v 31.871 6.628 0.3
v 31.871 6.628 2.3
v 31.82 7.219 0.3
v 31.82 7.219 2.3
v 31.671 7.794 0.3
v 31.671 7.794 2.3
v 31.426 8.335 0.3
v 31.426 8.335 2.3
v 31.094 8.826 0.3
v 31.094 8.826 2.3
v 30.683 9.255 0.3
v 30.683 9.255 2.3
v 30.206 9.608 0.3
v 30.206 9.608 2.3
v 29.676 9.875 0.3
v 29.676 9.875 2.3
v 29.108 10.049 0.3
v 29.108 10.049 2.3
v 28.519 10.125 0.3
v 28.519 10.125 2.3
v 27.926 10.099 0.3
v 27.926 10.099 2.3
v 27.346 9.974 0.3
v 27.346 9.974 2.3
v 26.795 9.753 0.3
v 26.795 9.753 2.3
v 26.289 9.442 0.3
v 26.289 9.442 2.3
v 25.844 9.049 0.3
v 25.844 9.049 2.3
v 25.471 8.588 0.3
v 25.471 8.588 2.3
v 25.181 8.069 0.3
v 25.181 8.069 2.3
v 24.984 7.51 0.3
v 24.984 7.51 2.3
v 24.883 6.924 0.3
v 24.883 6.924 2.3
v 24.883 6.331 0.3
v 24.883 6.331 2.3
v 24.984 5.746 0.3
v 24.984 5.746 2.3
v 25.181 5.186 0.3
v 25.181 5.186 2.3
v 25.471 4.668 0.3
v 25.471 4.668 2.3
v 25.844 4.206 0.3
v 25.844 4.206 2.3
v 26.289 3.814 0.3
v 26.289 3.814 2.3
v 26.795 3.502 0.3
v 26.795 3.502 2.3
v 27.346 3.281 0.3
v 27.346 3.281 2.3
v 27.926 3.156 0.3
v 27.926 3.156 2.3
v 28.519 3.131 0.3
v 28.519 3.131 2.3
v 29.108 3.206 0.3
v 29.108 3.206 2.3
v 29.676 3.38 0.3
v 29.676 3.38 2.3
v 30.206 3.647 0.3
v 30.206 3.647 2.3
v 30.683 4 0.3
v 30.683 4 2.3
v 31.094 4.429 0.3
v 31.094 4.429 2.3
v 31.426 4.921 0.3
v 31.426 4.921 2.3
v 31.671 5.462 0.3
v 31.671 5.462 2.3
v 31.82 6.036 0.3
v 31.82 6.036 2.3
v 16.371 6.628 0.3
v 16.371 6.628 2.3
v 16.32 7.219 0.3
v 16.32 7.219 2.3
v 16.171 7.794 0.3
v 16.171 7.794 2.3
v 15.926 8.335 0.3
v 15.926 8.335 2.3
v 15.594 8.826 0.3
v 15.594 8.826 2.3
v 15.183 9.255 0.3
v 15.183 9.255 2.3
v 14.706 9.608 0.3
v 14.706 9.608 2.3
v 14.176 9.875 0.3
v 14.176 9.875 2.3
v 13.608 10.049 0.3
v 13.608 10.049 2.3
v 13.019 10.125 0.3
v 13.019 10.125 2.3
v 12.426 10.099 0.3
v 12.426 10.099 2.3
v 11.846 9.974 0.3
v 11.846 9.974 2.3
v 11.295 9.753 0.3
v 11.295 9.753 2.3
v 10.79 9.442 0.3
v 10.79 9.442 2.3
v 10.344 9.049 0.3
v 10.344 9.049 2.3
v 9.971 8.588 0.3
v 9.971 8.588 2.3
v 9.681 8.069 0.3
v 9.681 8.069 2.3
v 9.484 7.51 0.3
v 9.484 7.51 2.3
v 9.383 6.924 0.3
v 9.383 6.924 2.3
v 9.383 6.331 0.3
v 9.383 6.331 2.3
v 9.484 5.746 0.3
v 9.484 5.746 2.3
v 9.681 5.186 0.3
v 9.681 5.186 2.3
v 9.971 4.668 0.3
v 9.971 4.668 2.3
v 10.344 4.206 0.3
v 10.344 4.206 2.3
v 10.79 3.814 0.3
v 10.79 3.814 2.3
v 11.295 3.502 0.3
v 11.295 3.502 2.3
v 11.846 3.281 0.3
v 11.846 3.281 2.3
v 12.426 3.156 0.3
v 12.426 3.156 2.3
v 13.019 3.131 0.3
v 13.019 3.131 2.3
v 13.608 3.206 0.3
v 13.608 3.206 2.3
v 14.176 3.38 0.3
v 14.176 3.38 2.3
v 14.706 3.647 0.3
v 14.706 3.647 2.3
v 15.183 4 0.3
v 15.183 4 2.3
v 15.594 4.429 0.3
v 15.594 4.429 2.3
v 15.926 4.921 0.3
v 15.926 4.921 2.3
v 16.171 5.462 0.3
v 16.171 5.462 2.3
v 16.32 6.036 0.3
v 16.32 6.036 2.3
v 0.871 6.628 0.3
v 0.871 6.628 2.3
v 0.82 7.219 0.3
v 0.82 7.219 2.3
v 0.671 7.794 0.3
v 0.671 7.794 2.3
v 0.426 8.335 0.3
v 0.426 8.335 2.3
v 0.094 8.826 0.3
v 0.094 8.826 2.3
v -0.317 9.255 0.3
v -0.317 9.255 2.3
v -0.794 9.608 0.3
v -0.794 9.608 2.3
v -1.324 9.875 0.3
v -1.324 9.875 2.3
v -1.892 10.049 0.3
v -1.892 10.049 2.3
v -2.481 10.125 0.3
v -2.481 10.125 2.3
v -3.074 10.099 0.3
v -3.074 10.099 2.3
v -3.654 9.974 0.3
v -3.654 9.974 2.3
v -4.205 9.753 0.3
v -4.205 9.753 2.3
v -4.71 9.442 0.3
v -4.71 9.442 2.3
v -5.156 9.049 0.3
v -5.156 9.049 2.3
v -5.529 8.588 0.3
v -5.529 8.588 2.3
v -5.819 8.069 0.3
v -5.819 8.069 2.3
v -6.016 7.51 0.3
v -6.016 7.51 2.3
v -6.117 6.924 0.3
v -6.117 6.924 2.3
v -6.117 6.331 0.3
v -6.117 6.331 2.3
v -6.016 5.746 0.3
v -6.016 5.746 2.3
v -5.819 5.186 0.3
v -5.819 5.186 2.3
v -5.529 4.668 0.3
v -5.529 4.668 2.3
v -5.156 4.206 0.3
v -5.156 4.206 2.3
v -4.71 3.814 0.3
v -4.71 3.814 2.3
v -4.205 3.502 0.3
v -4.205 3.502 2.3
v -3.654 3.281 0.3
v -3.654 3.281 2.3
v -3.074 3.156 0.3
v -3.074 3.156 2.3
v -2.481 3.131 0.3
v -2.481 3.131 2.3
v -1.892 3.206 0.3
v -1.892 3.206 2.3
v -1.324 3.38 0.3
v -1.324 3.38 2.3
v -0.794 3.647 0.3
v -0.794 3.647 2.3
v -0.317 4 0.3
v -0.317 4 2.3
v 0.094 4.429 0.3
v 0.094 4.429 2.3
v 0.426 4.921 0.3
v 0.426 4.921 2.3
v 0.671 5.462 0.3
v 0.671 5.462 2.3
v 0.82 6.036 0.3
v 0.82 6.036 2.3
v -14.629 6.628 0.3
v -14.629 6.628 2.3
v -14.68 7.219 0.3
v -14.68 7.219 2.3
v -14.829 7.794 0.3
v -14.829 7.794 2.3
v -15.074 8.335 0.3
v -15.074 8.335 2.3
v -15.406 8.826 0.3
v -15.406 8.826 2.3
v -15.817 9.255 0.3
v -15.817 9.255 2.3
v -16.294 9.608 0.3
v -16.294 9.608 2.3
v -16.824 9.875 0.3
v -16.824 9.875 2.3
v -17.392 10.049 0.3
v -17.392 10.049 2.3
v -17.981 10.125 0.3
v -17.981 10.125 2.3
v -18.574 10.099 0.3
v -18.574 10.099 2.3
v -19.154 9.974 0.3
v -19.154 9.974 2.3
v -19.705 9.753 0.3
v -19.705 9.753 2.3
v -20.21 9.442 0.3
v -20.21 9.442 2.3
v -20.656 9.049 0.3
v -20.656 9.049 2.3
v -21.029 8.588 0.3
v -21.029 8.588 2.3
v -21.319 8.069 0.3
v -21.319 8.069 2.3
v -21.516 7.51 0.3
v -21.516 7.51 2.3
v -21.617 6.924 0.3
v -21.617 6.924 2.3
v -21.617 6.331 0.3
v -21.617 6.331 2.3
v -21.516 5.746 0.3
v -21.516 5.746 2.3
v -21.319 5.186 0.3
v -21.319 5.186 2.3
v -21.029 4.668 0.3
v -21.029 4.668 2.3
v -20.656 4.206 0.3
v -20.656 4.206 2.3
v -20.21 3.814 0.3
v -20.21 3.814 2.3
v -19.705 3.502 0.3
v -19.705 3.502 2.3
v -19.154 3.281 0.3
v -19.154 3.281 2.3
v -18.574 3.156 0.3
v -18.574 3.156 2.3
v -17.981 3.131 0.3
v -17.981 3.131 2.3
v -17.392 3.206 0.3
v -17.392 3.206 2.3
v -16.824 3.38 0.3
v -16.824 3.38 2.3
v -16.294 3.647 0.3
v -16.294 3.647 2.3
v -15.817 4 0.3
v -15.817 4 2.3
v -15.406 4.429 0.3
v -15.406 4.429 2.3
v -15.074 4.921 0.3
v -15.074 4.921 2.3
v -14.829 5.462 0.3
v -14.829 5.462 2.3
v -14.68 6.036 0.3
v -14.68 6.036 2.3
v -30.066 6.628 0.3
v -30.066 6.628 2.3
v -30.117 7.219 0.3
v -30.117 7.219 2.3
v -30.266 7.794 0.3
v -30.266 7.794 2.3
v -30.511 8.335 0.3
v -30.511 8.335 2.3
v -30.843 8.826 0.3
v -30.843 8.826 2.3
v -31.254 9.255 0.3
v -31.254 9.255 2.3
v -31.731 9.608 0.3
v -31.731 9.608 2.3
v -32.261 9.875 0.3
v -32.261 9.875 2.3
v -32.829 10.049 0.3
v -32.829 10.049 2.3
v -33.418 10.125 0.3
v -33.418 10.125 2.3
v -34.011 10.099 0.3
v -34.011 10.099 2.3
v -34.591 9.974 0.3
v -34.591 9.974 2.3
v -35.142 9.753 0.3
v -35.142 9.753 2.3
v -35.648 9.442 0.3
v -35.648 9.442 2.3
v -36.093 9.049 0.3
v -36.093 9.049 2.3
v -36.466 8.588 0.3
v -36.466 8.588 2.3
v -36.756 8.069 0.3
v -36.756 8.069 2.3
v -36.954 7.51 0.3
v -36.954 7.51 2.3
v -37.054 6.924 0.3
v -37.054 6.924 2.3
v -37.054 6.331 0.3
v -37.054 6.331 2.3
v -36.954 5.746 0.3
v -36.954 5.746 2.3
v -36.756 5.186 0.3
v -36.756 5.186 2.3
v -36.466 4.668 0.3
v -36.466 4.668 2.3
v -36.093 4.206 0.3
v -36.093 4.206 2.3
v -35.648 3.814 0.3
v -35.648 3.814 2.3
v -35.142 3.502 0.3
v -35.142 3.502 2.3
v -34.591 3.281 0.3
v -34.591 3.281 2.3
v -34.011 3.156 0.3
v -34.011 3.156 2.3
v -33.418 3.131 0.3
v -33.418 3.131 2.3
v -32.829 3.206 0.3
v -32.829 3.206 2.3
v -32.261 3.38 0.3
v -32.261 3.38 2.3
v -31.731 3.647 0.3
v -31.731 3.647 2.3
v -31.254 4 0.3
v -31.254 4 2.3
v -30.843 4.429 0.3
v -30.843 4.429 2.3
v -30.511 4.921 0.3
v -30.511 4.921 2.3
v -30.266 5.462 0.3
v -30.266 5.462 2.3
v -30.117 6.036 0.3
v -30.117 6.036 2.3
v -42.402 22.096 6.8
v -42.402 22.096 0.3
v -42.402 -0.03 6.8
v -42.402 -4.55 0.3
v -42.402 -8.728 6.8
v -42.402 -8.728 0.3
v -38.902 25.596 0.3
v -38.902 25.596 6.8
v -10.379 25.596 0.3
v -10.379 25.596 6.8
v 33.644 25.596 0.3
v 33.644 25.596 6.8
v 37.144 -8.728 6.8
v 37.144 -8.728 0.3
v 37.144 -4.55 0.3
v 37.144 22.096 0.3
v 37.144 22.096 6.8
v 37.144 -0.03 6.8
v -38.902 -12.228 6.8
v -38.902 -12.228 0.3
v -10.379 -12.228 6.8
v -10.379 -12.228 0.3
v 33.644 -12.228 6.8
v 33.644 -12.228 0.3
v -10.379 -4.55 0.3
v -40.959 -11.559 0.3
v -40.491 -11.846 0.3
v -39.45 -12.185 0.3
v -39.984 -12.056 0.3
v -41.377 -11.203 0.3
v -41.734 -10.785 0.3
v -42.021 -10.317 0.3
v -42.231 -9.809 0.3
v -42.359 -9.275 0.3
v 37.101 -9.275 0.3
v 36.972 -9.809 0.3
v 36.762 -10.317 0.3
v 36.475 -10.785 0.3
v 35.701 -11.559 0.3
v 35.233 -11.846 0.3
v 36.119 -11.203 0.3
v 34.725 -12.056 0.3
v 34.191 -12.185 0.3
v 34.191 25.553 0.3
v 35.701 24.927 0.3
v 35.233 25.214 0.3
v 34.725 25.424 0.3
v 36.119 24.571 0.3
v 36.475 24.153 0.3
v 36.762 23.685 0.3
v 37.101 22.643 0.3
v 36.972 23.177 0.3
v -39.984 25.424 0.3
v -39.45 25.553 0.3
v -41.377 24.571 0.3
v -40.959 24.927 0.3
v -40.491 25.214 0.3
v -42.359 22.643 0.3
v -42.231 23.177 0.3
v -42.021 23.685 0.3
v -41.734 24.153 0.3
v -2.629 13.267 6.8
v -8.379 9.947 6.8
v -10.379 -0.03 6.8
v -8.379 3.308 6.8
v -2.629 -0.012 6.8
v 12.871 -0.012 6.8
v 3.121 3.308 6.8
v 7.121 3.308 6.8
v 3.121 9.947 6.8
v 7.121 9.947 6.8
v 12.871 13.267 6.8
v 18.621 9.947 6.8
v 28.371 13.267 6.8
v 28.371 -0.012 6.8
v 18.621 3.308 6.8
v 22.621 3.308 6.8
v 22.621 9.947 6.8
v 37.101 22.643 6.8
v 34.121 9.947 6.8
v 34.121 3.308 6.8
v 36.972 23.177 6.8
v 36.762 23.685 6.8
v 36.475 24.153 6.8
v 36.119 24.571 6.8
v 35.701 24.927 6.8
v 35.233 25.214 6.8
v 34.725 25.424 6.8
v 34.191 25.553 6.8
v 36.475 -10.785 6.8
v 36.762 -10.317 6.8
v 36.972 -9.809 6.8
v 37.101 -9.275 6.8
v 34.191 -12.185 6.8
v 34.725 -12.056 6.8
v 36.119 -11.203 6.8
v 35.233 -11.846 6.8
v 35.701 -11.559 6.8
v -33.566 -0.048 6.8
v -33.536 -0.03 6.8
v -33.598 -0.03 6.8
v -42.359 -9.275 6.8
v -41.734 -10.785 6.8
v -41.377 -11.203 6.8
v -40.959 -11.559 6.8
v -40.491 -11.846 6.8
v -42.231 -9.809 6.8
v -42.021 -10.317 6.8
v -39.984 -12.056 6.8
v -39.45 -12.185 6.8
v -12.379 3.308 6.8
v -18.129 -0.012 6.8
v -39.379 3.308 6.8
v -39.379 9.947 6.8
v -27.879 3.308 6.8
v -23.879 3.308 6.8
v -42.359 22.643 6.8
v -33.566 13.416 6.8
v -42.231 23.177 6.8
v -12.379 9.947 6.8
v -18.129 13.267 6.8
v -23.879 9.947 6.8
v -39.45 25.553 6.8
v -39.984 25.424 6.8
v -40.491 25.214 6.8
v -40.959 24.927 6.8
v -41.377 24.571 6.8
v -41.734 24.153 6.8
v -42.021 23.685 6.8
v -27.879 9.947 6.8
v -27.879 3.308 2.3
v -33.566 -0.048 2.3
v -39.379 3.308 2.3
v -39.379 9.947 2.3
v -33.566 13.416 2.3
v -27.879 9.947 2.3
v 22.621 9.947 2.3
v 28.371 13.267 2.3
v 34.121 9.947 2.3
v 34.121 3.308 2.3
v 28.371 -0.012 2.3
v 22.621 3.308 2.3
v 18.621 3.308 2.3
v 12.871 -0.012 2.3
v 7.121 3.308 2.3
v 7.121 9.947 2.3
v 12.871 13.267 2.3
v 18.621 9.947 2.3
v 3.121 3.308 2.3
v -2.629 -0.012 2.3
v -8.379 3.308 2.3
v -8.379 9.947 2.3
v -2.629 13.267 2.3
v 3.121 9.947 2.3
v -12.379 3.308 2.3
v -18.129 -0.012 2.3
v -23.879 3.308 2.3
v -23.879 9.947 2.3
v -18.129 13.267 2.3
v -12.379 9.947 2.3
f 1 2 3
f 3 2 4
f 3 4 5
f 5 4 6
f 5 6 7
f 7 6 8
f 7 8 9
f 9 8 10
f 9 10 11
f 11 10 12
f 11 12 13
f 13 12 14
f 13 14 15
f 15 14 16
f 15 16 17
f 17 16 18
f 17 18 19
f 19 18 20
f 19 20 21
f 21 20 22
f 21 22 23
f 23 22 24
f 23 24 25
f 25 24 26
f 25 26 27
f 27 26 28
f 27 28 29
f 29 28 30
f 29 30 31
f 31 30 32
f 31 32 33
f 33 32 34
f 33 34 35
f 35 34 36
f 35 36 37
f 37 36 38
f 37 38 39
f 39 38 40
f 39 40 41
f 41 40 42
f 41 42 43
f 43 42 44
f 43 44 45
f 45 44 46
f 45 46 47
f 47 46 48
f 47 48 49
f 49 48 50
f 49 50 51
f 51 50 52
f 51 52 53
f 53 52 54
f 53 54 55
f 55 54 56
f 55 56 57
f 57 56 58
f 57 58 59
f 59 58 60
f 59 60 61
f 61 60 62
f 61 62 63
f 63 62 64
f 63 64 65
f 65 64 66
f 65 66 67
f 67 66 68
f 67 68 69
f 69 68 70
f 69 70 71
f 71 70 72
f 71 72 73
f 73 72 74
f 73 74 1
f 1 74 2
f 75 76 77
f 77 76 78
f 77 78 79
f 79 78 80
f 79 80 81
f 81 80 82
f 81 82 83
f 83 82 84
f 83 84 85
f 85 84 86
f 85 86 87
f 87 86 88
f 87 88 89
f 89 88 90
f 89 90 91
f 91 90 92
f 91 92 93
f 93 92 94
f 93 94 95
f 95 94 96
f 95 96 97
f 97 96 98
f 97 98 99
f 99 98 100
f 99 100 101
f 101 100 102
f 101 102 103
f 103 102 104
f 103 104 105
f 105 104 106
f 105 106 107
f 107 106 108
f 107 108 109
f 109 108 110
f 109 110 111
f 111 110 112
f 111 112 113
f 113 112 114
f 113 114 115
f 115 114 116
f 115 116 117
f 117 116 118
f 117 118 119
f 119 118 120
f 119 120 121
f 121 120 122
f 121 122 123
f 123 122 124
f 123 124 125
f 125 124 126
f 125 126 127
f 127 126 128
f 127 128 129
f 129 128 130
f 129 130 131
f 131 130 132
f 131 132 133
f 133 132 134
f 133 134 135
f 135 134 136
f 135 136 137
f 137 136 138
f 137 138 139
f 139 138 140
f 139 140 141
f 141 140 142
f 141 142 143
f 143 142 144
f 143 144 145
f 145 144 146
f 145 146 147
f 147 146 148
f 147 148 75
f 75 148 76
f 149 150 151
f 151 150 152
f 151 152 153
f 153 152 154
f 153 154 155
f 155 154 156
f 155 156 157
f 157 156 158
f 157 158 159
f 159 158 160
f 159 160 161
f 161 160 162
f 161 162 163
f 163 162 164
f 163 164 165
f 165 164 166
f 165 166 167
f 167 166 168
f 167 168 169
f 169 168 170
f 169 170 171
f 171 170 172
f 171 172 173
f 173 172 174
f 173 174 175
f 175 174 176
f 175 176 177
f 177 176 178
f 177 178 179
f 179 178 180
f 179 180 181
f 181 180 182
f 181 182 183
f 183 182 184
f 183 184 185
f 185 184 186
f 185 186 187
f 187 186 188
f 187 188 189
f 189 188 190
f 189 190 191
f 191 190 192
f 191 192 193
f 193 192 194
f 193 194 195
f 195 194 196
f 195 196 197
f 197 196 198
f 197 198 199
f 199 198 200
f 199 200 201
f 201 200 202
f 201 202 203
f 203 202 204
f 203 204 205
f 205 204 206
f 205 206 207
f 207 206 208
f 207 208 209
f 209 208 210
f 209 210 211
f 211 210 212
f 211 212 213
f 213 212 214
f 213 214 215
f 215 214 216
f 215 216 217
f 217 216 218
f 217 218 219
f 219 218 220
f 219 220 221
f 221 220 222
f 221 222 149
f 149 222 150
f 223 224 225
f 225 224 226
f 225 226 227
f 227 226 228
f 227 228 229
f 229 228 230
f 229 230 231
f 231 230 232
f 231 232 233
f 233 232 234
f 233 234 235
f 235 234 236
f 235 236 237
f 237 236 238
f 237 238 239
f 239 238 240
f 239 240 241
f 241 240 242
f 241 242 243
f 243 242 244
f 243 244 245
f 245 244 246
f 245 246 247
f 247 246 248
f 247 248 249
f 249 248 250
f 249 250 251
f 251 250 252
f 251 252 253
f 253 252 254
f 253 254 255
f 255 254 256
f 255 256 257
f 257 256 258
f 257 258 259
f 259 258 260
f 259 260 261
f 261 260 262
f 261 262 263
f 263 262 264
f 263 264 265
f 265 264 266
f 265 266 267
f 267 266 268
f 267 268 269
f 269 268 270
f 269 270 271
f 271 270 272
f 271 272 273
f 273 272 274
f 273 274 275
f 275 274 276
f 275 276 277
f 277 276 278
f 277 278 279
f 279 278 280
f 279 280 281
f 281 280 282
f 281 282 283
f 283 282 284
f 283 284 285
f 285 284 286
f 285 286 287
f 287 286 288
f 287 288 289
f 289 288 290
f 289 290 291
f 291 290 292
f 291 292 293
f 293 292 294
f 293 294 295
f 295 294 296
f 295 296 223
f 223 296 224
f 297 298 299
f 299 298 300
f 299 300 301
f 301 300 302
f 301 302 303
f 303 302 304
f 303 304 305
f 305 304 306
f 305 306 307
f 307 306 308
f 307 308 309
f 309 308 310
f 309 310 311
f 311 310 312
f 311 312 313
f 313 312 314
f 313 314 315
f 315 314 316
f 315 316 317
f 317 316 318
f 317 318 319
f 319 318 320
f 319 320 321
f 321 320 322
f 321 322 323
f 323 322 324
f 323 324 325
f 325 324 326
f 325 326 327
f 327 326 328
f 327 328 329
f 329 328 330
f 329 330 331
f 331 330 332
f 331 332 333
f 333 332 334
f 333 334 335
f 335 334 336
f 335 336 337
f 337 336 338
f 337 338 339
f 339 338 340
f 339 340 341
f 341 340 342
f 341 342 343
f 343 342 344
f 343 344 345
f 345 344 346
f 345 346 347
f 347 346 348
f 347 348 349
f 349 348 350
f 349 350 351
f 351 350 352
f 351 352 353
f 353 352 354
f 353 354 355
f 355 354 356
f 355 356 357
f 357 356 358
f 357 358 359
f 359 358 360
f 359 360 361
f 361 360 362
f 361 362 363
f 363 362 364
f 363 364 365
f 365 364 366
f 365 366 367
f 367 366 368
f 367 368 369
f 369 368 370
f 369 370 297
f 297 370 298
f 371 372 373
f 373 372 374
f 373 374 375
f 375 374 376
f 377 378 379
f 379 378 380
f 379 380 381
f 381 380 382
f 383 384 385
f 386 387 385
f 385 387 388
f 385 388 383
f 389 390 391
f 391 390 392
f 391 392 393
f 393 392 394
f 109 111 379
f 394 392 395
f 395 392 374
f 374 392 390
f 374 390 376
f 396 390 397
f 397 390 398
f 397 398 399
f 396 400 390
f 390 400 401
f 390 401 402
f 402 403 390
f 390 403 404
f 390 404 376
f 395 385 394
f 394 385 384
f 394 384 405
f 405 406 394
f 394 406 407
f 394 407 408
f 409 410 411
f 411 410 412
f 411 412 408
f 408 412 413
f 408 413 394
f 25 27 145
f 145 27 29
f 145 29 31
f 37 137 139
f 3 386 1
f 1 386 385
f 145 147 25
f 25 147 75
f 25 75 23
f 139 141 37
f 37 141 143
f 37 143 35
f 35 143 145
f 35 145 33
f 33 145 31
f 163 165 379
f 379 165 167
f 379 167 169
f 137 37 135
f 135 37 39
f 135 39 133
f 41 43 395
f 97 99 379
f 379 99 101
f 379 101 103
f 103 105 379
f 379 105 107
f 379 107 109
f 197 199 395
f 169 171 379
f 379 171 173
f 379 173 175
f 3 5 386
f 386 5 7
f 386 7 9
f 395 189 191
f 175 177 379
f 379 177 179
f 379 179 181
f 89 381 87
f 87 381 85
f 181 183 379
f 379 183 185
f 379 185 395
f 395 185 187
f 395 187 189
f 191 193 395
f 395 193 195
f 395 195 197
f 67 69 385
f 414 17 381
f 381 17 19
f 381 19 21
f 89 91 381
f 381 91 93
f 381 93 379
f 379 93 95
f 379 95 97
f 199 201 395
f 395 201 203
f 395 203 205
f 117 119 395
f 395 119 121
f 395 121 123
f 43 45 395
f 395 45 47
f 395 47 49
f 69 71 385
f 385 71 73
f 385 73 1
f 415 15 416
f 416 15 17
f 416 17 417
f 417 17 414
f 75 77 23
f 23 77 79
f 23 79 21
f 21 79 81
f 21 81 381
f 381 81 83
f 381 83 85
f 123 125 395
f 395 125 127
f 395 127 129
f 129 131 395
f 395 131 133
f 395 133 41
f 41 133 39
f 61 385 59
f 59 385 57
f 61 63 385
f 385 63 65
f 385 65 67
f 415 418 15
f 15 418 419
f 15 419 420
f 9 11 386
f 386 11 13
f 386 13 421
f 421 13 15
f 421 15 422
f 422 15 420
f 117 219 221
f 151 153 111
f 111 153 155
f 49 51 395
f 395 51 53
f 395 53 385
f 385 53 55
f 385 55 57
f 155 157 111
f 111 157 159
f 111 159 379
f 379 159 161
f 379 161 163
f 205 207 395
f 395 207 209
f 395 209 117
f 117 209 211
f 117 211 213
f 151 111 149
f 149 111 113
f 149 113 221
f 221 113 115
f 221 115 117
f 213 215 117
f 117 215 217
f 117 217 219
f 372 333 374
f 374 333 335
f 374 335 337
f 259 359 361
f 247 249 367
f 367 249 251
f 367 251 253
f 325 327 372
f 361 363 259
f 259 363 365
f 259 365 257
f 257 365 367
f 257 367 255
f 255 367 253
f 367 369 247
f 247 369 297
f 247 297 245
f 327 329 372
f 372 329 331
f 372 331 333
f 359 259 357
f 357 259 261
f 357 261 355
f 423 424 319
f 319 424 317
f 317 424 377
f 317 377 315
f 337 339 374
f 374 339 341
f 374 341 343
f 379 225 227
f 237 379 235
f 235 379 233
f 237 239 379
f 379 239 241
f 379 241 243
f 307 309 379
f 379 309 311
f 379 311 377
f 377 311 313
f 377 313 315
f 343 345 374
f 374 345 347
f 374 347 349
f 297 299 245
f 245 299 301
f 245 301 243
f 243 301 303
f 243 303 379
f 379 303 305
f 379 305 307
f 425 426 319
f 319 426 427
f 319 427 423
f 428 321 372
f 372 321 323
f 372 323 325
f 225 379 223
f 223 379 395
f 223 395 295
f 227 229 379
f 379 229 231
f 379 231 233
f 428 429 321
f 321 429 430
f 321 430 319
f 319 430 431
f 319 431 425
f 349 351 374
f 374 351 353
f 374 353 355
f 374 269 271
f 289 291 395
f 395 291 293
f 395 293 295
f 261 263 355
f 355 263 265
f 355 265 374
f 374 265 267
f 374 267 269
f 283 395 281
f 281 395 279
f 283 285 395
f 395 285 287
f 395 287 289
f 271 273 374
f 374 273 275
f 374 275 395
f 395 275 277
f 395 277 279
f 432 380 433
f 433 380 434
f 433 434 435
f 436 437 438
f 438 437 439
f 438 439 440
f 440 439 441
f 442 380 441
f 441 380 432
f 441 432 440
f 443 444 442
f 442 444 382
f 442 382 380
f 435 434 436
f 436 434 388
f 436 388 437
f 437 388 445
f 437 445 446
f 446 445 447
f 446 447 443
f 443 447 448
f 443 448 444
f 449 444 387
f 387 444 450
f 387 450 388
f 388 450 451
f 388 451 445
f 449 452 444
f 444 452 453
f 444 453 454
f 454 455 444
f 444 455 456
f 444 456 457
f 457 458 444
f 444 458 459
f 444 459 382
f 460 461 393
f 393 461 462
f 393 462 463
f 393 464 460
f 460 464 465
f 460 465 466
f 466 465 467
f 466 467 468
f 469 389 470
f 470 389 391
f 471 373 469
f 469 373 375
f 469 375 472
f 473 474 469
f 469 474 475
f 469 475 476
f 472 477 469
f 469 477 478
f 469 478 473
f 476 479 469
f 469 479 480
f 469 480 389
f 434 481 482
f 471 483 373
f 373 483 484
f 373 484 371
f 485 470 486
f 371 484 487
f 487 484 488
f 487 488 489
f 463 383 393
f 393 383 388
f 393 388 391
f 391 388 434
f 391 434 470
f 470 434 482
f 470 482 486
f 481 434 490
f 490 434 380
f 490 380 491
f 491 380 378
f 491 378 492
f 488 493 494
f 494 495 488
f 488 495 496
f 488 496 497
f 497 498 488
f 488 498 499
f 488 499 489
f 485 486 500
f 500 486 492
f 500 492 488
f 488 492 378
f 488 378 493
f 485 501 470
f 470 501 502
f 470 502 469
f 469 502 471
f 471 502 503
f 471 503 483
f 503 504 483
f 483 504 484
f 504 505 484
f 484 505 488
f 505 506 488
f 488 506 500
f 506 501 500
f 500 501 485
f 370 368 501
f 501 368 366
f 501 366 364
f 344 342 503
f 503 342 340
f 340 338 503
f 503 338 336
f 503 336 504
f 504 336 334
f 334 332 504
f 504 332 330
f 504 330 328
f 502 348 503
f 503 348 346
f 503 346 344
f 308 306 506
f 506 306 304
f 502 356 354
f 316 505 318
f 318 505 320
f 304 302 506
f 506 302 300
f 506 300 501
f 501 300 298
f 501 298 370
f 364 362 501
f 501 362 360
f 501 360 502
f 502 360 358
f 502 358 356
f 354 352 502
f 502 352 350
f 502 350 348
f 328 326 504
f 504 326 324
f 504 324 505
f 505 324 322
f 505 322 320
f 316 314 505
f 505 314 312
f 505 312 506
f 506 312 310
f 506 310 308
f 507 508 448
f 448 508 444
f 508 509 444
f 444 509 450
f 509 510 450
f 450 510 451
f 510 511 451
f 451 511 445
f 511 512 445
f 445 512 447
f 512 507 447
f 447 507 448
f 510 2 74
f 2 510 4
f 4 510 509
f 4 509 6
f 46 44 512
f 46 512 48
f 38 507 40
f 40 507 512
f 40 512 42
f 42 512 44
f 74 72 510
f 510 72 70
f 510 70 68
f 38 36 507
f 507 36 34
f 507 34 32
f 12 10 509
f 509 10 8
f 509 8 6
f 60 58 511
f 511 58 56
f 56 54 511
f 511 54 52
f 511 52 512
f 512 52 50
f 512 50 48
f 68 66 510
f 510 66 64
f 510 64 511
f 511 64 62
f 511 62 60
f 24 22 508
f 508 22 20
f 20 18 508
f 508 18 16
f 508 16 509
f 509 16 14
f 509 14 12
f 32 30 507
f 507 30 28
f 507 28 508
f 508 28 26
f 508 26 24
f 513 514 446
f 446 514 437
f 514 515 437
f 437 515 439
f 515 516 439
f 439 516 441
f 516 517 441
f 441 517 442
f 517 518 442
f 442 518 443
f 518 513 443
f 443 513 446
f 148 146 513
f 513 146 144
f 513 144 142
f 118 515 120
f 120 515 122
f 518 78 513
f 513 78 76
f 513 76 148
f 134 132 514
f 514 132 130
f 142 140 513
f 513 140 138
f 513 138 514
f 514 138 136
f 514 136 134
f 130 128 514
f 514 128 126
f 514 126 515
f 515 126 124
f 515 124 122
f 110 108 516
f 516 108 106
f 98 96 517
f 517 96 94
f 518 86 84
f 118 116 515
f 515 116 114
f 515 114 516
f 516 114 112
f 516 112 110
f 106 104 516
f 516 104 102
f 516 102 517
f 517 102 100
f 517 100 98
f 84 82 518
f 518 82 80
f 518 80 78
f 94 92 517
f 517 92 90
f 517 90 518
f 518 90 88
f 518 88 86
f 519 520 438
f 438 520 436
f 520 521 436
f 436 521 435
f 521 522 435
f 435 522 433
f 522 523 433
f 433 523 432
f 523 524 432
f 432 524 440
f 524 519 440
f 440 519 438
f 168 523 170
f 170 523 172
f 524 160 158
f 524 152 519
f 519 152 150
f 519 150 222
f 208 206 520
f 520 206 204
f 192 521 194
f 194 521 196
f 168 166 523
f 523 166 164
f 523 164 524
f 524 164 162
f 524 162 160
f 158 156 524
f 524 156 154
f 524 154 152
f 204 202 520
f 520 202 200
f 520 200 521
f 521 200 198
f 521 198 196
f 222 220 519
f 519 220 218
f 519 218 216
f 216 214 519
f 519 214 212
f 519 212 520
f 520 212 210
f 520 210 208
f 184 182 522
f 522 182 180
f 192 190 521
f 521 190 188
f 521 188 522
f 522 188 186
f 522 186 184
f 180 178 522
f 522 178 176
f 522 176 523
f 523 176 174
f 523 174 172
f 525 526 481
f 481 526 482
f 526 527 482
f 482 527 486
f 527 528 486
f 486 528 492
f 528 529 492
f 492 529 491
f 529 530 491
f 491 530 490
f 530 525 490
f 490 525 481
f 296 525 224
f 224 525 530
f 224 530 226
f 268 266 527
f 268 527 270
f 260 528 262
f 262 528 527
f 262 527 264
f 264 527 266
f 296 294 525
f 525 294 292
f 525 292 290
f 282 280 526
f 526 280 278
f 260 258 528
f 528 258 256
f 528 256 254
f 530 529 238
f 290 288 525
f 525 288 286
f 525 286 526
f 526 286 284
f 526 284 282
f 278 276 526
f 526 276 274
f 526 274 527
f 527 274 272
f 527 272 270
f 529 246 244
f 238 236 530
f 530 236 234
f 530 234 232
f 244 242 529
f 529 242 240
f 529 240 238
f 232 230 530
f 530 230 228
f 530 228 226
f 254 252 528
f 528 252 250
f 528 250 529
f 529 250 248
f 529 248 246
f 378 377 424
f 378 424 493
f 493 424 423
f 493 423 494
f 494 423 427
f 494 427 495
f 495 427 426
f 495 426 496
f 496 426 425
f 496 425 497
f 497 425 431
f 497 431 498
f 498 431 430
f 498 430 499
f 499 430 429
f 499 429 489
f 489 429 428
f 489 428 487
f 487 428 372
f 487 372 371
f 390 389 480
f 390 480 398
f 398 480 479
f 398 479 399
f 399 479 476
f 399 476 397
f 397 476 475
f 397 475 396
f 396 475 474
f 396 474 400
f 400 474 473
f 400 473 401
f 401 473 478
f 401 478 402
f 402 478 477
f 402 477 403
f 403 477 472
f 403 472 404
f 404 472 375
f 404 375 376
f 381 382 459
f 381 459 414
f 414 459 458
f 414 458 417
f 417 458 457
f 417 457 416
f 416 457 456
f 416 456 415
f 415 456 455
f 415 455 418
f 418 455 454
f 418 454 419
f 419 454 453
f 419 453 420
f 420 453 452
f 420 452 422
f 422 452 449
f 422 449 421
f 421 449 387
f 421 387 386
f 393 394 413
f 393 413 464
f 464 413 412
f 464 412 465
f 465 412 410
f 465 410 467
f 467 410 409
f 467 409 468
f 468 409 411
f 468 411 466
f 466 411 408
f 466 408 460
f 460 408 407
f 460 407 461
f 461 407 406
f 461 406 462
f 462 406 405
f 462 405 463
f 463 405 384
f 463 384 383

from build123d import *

# Parameters (mm, degrees)
SKETCH3_W           = 79.545894585
SKETCH3_H           = 37.823430605
SKETCH3_R           = 3.5
BOSS_EXTRUDE2_DEPTH = 6.5
SKETCH3_3_R         = 3.5
CUT_EXTRUDE2_DEPTH  = 4.5
FILLET1_R           = 3.5


with BuildPart() as part:
    # Sketch3 → Boss-Extrude2 (new body)
    with BuildSketch(Plane.XY.offset(6.8)):
        with Locations((-2.629280553, 6.684087798)):
            Rectangle(SKETCH3_W, SKETCH3_H)
        with Locations((-33.566454678, 6.627672505)):
            Circle(SKETCH3_R, mode=Mode.SUBTRACT)
        with Locations((-18.129280553, 6.627672505)):
            Circle(SKETCH3_R, mode=Mode.SUBTRACT)
        with Locations((-2.629280553, 6.627672505)):
            Circle(SKETCH3_R, mode=Mode.SUBTRACT)
        with Locations((12.870719447, 6.627672505)):
            Circle(SKETCH3_R, mode=Mode.SUBTRACT)
        with Locations((28.370719447, 6.627672505)):
            Circle(SKETCH3_R, mode=Mode.SUBTRACT)
    extrude(amount=-BOSS_EXTRUDE2_DEPTH)

    # Sketch3<3> → Cut-Extrude2 (cut)
    # profile 1 of 5: a face of its own
    with BuildSketch(Plane.XY.offset(6.8)):
        Polygon((-27.879280553, 9.947436553), (-33.566454678, 13.416303721), (-39.379280553, 9.947436553), (-39.379280553, 3.307908457), (-33.566454678, -0.048128126), (-27.879280553, 3.307908457), (-27.879280553, 6.627672505), align=None)
        with Locations((-33.566454678, 6.627672505)):
            Circle(SKETCH3_3_R, mode=Mode.SUBTRACT)
    # profile 2 of 5: a face of its own
    with BuildSketch(Plane.XY.offset(6.8)):
        Polygon((-23.879280553, 9.947436553), (-23.879280553, 3.307908457), (-18.129280553, -0.01185559), (-12.379280553, 3.307908457), (-12.379280553, 9.947436553), (-18.129280553, 13.267200601), align=None)
        with Locations((-18.129280553, 6.627672505)):
            Circle(SKETCH3_3_R, mode=Mode.SUBTRACT)
    # profile 3 of 5: a face of its own
    with BuildSketch(Plane.XY.offset(6.8)):
        Polygon((34.120719447, 3.307908457), (34.120719447, 9.947436553), (28.370719447, 13.267200601), (22.620719447, 9.947436553), (22.620719447, 6.627672505), (22.620719447, 3.307908457), (28.370719447, -0.01185559), align=None)
        with Locations((28.370719447, 6.627672505)):
            Circle(SKETCH3_3_R, mode=Mode.SUBTRACT)
    # profile 4 of 5: a face of its own
    with BuildSketch(Plane.XY.offset(6.8)):
        Polygon((-8.379280553, 9.947436553), (-8.379280553, 3.307908457), (-2.629280553, -0.01185559), (3.120719447, 3.307908457), (3.120719447, 9.947436553), (-2.629280553, 13.267200601), align=None)
        with Locations((-2.629280553, 6.627672505)):
            Circle(SKETCH3_3_R, mode=Mode.SUBTRACT)
    # profile 5 of 5: a face of its own
    with BuildSketch(Plane.XY.offset(6.8)):
        Polygon((18.620719447, 3.307908457), (18.620719447, 9.947436553), (12.870719447, 13.267200601), (7.120719447, 9.947436553), (7.120719447, 3.307908457), (12.870719447, -0.01185559), align=None)
        with Locations((12.870719447, 6.627672505)):
            Circle(SKETCH3_3_R, mode=Mode.SUBTRACT)
    extrude(amount=-CUT_EXTRUDE2_DEPTH, mode=Mode.SUBTRACT)

    # Fillet1
    fillet1_edges = [part.edges().sort_by_distance(p)[0] for p in [
        (-42.402227845, 25.5958031, 3.55),
        (37.14366674, 25.5958031, 3.55),
        (37.14366674, -12.227627505, 3.55),
        (-42.402227845, -12.227627505, 3.55),
    ]]
    fillet(fillet1_edges, radius=FILLET1_R)


solid = part.part
